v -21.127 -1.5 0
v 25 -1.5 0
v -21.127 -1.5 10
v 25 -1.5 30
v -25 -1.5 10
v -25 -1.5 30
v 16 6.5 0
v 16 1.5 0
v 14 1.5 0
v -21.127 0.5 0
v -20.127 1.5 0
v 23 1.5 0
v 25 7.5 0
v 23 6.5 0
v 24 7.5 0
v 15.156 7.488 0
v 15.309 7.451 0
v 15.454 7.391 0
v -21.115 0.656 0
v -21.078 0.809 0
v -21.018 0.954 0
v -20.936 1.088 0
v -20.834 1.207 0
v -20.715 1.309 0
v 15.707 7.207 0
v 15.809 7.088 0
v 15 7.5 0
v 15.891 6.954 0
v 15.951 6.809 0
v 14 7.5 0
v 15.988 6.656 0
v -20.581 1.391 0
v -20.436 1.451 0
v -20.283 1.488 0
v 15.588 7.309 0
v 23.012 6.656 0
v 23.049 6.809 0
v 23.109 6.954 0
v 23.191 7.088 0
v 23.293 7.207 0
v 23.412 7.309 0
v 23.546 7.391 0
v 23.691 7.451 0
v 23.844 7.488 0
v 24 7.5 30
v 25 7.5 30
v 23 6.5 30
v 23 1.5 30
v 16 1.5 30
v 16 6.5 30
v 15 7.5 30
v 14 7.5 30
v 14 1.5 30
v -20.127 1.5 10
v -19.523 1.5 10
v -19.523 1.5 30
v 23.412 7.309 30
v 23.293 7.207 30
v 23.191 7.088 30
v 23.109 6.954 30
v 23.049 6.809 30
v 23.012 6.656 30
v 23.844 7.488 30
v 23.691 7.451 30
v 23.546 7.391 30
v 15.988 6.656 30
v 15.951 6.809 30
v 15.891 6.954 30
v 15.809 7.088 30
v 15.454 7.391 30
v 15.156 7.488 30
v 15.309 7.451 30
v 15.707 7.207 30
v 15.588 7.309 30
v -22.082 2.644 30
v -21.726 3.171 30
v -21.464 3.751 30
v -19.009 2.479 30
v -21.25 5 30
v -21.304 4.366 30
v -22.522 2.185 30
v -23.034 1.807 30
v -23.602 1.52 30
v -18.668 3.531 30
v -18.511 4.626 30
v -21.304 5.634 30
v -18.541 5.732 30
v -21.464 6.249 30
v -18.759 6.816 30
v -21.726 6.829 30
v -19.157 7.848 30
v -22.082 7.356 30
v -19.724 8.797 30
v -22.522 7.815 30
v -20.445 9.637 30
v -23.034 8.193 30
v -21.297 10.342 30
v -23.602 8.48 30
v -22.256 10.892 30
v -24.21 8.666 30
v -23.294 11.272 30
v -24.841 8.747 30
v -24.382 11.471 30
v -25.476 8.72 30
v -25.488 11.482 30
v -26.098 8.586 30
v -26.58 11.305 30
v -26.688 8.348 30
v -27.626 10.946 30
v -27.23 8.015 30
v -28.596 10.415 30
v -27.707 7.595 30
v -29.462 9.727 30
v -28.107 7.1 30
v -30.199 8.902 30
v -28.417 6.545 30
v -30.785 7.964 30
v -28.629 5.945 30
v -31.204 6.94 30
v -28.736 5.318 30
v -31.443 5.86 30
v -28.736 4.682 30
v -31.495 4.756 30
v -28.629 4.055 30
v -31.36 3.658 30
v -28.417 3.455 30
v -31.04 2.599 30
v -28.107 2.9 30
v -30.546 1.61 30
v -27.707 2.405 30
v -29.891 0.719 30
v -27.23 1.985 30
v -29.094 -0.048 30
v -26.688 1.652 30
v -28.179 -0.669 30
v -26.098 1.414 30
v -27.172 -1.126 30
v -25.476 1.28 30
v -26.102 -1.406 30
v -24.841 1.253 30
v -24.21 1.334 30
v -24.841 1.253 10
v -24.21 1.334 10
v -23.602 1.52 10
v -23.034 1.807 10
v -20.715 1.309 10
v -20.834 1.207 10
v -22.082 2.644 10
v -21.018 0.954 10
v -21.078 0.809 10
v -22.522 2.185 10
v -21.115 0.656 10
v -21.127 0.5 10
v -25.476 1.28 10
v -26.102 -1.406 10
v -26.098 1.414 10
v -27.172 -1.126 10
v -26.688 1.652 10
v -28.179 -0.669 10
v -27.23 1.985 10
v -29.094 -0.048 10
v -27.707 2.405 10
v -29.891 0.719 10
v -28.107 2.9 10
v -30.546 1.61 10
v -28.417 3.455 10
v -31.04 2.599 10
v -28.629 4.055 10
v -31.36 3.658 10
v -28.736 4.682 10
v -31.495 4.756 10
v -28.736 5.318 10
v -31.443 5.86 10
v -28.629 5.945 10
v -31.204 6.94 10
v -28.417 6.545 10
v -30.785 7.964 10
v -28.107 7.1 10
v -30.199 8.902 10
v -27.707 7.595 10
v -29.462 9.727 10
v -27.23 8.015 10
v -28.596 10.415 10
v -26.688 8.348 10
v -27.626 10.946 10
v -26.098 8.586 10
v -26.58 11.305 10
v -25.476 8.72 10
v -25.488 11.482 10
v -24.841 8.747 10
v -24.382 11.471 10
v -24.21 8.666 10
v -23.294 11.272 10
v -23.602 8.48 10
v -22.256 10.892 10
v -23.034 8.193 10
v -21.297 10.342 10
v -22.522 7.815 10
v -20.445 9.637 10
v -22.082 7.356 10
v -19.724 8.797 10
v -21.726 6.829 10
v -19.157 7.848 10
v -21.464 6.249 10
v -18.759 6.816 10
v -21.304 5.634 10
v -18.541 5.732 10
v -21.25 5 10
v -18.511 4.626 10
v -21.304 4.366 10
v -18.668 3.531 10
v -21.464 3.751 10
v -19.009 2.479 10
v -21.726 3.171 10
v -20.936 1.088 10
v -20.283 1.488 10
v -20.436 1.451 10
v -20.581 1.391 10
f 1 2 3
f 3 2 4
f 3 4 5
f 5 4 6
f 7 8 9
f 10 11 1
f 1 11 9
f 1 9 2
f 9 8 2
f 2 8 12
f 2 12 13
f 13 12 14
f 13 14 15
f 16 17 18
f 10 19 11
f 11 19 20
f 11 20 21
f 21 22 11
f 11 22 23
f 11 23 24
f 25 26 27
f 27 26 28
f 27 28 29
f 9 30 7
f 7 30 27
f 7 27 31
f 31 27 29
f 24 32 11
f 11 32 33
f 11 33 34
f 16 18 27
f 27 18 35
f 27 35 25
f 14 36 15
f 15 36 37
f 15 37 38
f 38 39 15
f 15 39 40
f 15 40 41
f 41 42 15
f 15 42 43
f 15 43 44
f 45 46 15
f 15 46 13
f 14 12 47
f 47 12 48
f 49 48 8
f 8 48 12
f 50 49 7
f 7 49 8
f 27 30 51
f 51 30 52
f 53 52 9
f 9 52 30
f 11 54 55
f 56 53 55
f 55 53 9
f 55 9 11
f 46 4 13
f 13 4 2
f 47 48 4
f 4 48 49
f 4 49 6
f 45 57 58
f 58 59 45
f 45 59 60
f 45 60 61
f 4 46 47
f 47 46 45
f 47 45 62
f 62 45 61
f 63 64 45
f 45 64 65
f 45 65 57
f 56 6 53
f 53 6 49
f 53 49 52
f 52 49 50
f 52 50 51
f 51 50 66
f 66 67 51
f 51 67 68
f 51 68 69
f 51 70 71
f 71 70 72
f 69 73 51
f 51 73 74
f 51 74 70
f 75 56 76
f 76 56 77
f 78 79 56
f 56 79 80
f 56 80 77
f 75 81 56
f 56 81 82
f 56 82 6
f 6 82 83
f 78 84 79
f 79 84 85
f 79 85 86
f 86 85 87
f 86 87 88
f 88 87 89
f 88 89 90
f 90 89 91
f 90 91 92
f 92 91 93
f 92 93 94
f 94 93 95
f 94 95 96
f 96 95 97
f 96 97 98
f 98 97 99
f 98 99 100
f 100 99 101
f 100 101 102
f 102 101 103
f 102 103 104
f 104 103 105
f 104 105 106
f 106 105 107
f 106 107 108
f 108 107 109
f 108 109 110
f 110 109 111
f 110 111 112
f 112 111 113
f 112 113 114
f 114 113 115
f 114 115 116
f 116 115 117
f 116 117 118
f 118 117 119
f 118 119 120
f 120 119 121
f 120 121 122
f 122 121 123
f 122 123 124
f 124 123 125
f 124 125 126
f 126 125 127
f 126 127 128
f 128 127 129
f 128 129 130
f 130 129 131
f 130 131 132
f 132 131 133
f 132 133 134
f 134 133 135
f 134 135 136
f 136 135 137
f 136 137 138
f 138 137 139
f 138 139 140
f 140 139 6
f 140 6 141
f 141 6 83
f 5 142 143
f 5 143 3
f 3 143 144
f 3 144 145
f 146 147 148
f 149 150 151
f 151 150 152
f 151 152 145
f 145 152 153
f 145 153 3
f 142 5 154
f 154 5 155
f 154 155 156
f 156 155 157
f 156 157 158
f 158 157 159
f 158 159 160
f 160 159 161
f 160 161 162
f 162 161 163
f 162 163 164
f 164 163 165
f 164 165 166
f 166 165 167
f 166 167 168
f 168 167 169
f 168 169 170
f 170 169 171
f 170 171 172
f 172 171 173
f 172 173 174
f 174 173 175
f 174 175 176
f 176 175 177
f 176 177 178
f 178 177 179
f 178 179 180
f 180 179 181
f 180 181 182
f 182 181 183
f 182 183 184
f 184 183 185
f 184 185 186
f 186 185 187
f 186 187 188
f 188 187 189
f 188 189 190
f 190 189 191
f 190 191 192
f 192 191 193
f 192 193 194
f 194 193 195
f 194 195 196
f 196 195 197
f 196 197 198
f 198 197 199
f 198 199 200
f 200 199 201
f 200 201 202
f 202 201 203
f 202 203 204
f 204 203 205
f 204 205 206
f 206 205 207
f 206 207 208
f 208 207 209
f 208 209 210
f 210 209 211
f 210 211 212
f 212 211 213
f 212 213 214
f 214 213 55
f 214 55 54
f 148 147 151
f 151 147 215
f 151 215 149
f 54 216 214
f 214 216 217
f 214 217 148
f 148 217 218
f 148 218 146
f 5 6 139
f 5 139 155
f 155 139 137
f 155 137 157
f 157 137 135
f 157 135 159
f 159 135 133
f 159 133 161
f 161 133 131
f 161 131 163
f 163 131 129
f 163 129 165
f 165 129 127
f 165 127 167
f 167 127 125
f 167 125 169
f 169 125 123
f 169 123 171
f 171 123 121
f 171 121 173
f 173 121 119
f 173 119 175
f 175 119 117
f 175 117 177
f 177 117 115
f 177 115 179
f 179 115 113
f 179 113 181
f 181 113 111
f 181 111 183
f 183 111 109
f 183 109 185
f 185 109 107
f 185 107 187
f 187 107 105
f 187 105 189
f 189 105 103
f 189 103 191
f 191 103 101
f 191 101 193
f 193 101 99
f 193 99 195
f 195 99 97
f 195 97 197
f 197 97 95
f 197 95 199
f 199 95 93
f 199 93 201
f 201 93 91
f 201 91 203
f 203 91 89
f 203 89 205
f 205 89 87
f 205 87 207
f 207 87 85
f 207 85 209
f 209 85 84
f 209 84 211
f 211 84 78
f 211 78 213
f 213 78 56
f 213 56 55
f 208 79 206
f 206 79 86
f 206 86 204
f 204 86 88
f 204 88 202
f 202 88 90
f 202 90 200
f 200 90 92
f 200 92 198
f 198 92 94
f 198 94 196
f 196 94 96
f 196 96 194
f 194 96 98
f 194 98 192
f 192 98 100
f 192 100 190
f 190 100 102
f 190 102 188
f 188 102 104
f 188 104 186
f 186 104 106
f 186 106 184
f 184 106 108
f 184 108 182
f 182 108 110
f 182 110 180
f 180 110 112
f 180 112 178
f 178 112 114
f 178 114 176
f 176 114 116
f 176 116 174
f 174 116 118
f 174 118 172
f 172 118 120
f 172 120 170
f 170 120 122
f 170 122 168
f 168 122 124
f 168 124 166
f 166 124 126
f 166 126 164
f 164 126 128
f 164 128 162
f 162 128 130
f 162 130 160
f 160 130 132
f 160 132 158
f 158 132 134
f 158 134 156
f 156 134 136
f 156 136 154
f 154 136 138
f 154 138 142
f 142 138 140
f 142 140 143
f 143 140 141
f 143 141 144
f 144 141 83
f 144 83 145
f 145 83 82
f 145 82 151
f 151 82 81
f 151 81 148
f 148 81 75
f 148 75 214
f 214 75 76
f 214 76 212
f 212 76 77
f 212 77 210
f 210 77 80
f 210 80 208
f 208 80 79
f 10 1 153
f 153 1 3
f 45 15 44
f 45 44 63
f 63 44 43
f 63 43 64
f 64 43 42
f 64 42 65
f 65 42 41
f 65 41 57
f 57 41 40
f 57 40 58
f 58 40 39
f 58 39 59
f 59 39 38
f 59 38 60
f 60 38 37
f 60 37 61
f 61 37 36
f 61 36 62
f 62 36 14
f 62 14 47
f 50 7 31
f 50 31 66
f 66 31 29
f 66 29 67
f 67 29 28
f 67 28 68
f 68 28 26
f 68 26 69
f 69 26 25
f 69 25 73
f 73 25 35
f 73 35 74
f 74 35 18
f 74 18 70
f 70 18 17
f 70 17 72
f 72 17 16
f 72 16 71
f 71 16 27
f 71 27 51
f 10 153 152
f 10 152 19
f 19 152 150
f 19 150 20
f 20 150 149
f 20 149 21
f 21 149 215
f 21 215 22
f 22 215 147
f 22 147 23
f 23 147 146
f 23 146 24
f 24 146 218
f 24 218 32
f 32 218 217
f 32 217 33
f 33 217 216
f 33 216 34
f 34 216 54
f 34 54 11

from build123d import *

# Parameters (mm, degrees)
BOSS_EXTRUDE1_DEPTH = 30
SKETCH3_R           = 6.5
SKETCH3_R_2         = 3.75
BOSS_EXTRUDE2_DEPTH = 20
SKETCH4_W           = 3.872983346
SKETCH4_H           = 3
CUT_EXTRUDE1_DEPTH  = 20
FILLET1_R           = 1


with BuildPart() as part:
    # Sketch1 → Boss-Extrude1 (new body)
    with BuildSketch(Plane.XY):
        Polygon((-25, -1.5), (25, -1.5), (25, 1.5), (25, 7.5), (23, 7.5), (23, 1.5), (16, 1.5), (16, 7.5), (14, 7.5), (14, 1.5), (-21.127016654, 1.5), align=None)
    extrude(amount=BOSS_EXTRUDE1_DEPTH)

    # Sketch3 → Boss-Extrude2 (add)
    with BuildSketch(Plane.XY.offset(30)):
        with Locations((-25, 5)):
            Circle(SKETCH3_R)
        with Locations((-25, 5)):
            Circle(SKETCH3_R_2, mode=Mode.SUBTRACT)
    extrude(amount=-BOSS_EXTRUDE2_DEPTH)

    # Sketch4 → Cut-Extrude1 (cut)
    with BuildSketch(Plane(origin=(0, 0, 10), x_dir=(-1, 0, 0), z_dir=(0, 0, -1))):
        with Locations((23.063508327, 0)):
            Rectangle(SKETCH4_W, SKETCH4_H)
    extrude(amount=CUT_EXTRUDE1_DEPTH, mode=Mode.SUBTRACT)

    # Fillet1
    fillet1_edges = [part.edges().sort_by_distance(p)[0] for p in [
        (16, 7.5, 15),
        (23, 7.5, 15),
        (-21.127016654, 1.5, 5),
    ]]
    fillet(fillet1_edges, radius=FILLET1_R)


solid = part.part
